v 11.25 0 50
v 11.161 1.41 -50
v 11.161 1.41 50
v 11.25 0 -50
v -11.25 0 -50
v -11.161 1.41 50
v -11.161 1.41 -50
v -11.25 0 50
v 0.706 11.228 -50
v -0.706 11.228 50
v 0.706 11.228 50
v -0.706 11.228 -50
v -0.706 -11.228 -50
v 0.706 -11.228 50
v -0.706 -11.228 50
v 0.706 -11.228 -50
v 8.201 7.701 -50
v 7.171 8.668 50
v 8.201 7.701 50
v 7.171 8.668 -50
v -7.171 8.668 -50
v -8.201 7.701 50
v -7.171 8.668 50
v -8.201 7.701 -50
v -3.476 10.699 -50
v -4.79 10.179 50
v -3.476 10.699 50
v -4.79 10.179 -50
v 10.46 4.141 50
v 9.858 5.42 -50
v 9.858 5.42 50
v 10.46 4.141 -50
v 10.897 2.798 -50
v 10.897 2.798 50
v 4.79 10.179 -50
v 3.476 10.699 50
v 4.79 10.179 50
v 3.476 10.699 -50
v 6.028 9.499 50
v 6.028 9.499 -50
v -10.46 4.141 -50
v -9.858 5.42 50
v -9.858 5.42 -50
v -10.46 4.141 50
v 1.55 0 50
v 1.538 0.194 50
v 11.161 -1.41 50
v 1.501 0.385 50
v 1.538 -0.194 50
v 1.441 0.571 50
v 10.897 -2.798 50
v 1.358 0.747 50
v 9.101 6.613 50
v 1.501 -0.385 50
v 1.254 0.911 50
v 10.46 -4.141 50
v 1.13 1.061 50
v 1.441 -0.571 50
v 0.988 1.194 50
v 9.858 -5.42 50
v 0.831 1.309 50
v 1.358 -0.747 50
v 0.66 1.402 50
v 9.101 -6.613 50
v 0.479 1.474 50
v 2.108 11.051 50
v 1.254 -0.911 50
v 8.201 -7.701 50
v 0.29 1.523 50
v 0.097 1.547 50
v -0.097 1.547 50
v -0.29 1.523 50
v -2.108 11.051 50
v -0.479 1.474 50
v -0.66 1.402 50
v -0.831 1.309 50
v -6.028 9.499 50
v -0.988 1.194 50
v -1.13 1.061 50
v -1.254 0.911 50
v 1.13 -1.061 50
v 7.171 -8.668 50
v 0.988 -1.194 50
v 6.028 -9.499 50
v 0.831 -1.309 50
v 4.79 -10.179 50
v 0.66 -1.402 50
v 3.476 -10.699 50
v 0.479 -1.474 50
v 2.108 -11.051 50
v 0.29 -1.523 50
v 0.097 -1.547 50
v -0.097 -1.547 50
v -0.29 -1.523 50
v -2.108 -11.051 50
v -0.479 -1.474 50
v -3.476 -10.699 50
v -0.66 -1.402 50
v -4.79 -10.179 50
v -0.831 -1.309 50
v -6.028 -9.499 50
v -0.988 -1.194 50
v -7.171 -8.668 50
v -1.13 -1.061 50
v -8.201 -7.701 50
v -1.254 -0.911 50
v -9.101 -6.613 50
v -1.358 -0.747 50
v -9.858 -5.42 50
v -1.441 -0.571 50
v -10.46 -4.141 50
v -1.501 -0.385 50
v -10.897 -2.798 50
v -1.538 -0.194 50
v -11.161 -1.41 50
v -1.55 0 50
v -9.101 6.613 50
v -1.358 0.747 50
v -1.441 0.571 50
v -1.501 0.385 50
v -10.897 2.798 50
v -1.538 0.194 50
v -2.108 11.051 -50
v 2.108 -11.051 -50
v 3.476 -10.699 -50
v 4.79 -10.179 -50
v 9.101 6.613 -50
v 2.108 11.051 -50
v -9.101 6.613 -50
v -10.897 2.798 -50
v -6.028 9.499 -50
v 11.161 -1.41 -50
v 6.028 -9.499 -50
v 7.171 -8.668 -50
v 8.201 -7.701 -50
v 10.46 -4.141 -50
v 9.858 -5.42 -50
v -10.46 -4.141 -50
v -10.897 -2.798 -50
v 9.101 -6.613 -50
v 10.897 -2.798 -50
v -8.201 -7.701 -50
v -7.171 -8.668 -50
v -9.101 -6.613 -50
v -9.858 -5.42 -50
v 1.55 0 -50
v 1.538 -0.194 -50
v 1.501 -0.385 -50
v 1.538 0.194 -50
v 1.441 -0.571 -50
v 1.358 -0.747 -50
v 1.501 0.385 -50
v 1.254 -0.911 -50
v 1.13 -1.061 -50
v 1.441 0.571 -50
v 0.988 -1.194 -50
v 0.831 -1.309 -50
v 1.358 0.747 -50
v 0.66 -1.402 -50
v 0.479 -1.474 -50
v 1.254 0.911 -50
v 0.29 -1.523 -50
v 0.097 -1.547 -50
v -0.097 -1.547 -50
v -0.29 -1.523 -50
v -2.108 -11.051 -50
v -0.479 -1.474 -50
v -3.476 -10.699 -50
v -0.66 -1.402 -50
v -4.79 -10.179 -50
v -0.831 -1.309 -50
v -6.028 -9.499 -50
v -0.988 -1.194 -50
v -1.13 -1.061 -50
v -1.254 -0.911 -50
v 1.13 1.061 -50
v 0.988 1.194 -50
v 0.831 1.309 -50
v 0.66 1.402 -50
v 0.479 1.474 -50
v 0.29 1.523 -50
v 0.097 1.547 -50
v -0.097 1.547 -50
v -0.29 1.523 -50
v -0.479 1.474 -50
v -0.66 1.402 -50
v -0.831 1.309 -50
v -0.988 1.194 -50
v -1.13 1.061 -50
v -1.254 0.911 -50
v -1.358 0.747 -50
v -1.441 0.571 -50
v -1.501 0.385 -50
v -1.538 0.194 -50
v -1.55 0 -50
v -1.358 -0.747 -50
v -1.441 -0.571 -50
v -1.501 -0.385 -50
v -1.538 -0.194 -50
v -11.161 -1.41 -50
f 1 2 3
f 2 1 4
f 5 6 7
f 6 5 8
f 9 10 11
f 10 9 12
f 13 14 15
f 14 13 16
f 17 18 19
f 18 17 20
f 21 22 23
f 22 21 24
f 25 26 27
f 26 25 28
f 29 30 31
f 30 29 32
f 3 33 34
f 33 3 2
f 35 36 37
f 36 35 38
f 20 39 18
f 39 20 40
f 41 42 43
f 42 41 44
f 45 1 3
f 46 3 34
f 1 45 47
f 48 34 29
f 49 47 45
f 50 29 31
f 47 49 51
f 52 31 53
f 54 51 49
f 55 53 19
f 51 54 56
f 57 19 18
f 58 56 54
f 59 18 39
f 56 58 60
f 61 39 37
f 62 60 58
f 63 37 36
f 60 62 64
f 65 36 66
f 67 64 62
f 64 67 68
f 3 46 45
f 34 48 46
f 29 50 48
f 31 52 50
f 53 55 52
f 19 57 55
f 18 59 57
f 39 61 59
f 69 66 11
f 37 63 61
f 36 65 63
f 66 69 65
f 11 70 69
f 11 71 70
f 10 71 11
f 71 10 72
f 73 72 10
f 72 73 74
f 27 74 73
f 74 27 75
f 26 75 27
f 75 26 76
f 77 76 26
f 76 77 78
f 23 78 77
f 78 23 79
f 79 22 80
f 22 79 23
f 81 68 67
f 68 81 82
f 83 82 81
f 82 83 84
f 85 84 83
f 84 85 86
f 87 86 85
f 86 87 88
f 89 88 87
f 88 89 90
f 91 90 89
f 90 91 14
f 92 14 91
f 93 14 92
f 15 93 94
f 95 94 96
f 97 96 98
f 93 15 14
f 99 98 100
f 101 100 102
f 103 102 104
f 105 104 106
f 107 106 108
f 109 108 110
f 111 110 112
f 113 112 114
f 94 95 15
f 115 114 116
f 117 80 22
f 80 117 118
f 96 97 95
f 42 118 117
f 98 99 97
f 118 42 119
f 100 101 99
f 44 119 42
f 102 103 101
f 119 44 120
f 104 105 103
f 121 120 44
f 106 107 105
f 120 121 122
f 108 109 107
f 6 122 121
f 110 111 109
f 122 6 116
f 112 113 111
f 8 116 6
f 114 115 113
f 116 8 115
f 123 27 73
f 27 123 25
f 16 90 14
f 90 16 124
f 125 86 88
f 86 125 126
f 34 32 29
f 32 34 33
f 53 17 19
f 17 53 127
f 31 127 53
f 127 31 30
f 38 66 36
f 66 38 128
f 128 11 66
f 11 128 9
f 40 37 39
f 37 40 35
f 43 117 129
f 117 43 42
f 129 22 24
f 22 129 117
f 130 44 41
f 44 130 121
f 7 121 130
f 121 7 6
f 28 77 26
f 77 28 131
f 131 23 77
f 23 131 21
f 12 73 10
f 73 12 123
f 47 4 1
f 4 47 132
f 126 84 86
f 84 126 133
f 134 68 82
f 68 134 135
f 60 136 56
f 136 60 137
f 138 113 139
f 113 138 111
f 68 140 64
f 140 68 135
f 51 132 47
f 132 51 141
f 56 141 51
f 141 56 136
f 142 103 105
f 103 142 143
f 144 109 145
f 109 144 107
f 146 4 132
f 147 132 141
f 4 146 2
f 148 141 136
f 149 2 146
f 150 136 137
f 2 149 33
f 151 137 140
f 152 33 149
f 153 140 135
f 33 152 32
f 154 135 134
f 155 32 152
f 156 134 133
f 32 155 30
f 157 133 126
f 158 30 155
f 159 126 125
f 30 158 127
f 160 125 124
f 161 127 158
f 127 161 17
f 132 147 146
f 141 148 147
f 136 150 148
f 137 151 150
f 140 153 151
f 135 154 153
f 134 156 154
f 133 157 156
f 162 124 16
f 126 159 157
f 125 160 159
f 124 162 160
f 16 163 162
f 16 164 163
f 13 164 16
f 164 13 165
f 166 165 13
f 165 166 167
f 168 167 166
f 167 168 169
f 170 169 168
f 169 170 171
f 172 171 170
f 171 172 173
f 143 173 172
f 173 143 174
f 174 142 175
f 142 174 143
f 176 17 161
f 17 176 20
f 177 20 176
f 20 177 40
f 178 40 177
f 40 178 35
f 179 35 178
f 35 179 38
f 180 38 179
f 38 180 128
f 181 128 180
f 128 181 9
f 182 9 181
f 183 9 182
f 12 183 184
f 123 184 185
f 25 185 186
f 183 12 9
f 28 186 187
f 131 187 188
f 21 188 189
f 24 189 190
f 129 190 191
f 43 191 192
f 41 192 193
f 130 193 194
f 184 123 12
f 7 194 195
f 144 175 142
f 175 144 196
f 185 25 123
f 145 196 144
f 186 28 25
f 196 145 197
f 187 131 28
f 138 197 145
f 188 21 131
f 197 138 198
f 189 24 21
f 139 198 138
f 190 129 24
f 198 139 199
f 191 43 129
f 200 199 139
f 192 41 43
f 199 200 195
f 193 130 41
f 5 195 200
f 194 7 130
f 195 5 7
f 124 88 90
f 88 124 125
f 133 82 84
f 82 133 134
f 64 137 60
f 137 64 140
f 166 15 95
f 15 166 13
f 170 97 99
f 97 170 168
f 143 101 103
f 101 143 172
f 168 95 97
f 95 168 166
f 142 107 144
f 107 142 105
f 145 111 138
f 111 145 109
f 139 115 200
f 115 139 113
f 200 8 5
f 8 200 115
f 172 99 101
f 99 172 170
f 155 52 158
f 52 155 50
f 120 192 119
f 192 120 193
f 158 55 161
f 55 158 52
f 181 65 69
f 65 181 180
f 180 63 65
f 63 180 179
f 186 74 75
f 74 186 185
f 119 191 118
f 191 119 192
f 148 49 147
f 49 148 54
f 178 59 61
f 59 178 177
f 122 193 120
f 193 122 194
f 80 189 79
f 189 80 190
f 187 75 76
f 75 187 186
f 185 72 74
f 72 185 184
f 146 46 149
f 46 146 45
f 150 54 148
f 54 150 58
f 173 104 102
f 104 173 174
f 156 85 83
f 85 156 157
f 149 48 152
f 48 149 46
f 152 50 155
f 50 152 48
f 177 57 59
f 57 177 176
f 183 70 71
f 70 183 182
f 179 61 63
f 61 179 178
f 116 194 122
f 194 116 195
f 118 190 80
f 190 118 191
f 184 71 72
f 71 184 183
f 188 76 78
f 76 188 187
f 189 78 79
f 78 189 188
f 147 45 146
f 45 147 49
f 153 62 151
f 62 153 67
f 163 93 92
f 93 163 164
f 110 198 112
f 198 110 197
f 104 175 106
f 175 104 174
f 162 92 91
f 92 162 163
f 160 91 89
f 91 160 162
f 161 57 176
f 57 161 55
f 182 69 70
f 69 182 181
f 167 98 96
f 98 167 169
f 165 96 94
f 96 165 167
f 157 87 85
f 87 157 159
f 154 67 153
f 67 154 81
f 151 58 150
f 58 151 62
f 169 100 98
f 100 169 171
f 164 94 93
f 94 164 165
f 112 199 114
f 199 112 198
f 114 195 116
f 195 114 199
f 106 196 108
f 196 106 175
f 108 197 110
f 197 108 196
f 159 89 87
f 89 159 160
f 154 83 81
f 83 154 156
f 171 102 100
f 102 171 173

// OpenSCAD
$fn = 50;


difference() {
	union() {
		translate(v = [0, 0, -50.0000000000]) {
			cylinder(h = 100, r = 11.2500000000);
		}
	}
	union() {
		translate(v = [0, 0, -100.0000000000]) {
			cylinder(h = 200, r = 1.5500000000);
		}
	}
}
